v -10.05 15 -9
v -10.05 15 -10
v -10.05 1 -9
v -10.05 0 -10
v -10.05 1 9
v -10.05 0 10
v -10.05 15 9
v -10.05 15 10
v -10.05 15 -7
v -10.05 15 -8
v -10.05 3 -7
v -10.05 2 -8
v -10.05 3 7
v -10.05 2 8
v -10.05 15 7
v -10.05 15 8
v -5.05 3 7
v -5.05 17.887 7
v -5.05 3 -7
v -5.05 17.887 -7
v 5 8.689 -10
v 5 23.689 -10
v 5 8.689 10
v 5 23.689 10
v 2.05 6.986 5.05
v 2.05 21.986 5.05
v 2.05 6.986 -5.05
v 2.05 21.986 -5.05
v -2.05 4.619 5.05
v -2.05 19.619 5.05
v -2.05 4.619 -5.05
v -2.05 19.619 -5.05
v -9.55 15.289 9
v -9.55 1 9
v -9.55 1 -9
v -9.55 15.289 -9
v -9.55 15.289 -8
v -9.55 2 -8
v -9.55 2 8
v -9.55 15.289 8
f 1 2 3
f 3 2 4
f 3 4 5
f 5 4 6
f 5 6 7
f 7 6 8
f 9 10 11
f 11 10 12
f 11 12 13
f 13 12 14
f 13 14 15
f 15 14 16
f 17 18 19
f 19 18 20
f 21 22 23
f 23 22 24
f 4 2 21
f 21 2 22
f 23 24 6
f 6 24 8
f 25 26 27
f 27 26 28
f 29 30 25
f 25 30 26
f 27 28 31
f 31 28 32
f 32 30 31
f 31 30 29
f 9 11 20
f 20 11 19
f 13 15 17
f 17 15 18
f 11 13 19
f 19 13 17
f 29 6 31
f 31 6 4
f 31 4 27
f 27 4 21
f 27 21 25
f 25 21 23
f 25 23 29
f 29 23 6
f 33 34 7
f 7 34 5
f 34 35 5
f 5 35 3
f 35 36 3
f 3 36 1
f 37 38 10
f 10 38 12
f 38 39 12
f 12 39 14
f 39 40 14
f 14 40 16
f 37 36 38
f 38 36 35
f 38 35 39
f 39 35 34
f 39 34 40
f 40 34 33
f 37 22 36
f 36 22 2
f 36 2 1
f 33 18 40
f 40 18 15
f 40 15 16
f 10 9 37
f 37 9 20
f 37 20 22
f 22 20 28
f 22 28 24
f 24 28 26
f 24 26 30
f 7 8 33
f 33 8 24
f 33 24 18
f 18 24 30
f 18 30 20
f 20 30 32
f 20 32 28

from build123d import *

# Parameters (mm, degrees)
SKETCH2_W             = 10
SKETCH2_H             = 20
BOSS_EXTRUDE1_DEPTH   = 15
SKETCH3_W             = 4.1
SKETCH3_H             = 10.1
CUT_EXTRUDE1_DEPTH    = 19.708286934
SKETCH4_W             = 2.95
SKETCH4_H             = 4.95
CUT_EXTRUDE2_DEPTH    = 15
SKETCH6_W             = 20
SKETCH6_H             = 15
BOSS_EXTRUDE2_DEPTH   = 3
BOSS_EXTRUDE3_DEPTH   = 5
CUT_EXTRUDE3_DEPTH    = 27.944433562
CUT_EXTRUDE4_DEPTH    = 0.5
BOSS_EXTRUDE6_START   = -10
BOSS_EXTRUDE6_DEPTH   = 20
BOSS_EXTRUDE6_2_DEPTH = 4.95
BOSS_EXTRUDE6_START_2 = 5.05
BOSS_EXTRUDE6_3_DEPTH = 4.95
BOSS_EXTRUDE6_4_DEPTH = 3
BOSS_EXTRUDE6_START_3 = 7
BOSS_EXTRUDE6_5_DEPTH = 3
BOSS_EXTRUDE6_6_DEPTH = 1
BOSS_EXTRUDE6_START_4 = -8
BOSS_EXTRUDE6_7_DEPTH = 1
BOSS_EXTRUDE6_8_DEPTH = 1
BOSS_EXTRUDE6_START_5 = 9
BOSS_EXTRUDE6_9_DEPTH = 1


# Read off the part's stored shape, not the designer's step: Boss-Extrude6
with BuildPart() as part:
    # Sketch2 → Boss-Extrude1 (new body)
    with BuildSketch(Plane(origin=(0, 0, 0), x_dir=(1, 0, 0), z_dir=(0, 1, 0))):
        Rectangle(SKETCH2_W, SKETCH2_H)
    extrude(amount=BOSS_EXTRUDE1_DEPTH)

    # Sketch3 → Cut-Extrude1 (cut, through all)
    with BuildSketch(Plane(origin=(0, 15, 0), x_dir=(1, 0, 0), z_dir=(0, 1, 0))):
        Rectangle(SKETCH3_W, SKETCH3_H)
    extrude(amount=-CUT_EXTRUDE1_DEPTH, mode=Mode.SUBTRACT)

    # Sketch4 → Cut-Extrude2 (cut)
    with BuildSketch(Plane(origin=(0, 15, 0), x_dir=(1, 0, 0), z_dir=(0, 1, 0))):
        Polygon((-2.05, 10), (-5, 10), (-5, -5.05), (-2.05, -5.05), (-2.05, 5.05), align=None)
        with Locations((-3.525, -7.525)):
            Rectangle(SKETCH4_W, SKETCH4_H)
    extrude(amount=-CUT_EXTRUDE2_DEPTH, mode=Mode.SUBTRACT)

    # Sketch6 → Boss-Extrude2 (add)
    with BuildSketch(Plane.ZY.offset(2.05)):
        with Locations((0, 7.5)):
            Rectangle(SKETCH6_W, SKETCH6_H)
    extrude(amount=BOSS_EXTRUDE2_DEPTH)

    # Sketch8 → Boss-Extrude3 (add)
    with BuildSketch(Plane.ZY.offset(5.05)):
        Polygon((-7, 15), (-10, 15), (-10, 0), (10, 0), (10, 15), (7, 15), (7, 3), (-7, 3), align=None)
    extrude(amount=BOSS_EXTRUDE3_DEPTH)

    # Sketch10 → Cut-Extrude3 (cut, through all)
    with BuildSketch(Plane.XY.offset(10)):
        Polygon((-10.05, 0), (5, 8.689121551), (5, 0), align=None)
    extrude(amount=-CUT_EXTRUDE3_DEPTH, mode=Mode.SUBTRACT)

    # Sketch11 → Cut-Extrude4 (cut)
    with BuildSketch(Plane.ZY.offset(10.05)):
        Polygon((-8, 2), (-8, 15), (-9, 15), (-9, 1), (0, 1), (9, 1), (9, 15), (8, 15), (8, 2), (0, 2), align=None)
    extrude(amount=-CUT_EXTRUDE4_DEPTH, mode=Mode.SUBTRACT)

    # Boss-Extrude6 outline → Boss-Extrude6 (add)
    with BuildSketch(Plane.XY.offset(BOSS_EXTRUDE6_START)):
        Polygon((-5.05, 17.886751346), (-5.05, 15), (-2.05, 15), (-2.05, 19.618802154), align=None)
        Polygon((2.05, 21.985938257), (2.05, 15), (5, 15), (5, 23.689121551), align=None)
    extrude(amount=BOSS_EXTRUDE6_DEPTH)

    # Boss-Extrude6 2 outline → Boss-Extrude6 2 (add)
    with BuildSketch(Plane.XY.offset(BOSS_EXTRUDE6_START)):
        Polygon((-2.05, 19.618802154), (-2.05, 15), (2.05, 15), (2.05, 21.985938257), align=None)
    extrude(amount=BOSS_EXTRUDE6_2_DEPTH)

    # Boss-Extrude6 3 outline → Boss-Extrude6 3 (add)
    with BuildSketch(Plane.XY.offset(BOSS_EXTRUDE6_START_2)):
        Polygon((-2.05, 19.618802154), (-2.05, 15), (2.05, 15), (2.05, 21.985938257), align=None)
    extrude(amount=BOSS_EXTRUDE6_3_DEPTH)

    # Boss-Extrude6 4 outline → Boss-Extrude6 4 (add)
    with BuildSketch(Plane.XY.offset(BOSS_EXTRUDE6_START)):
        Polygon((-9.55, 15), (-5.05, 15), (-5.05, 17.886751346), (-9.55, 15.288675135), align=None)
    extrude(amount=BOSS_EXTRUDE6_4_DEPTH)

    # Boss-Extrude6 5 outline → Boss-Extrude6 5 (add)
    with BuildSketch(Plane.XY.offset(BOSS_EXTRUDE6_START_3)):
        Polygon((-9.55, 15), (-5.05, 15), (-5.05, 17.886751346), (-9.55, 15.288675135), align=None)
    extrude(amount=BOSS_EXTRUDE6_5_DEPTH)

    # Boss-Extrude6 6 outline → Boss-Extrude6 6 (add)
    with BuildSketch(Plane.XY.offset(BOSS_EXTRUDE6_START)):
        Polygon((-10.05, 15), (-9.55, 15), (-9.55, 15.288675135), align=None)
    extrude(amount=BOSS_EXTRUDE6_6_DEPTH)

    # Boss-Extrude6 7 outline → Boss-Extrude6 7 (add)
    with BuildSketch(Plane.XY.offset(BOSS_EXTRUDE6_START_4)):
        Polygon((-10.05, 15), (-9.55, 15), (-9.55, 15.288675135), align=None)
    extrude(amount=BOSS_EXTRUDE6_7_DEPTH)

    # Boss-Extrude6 8 outline → Boss-Extrude6 8 (add)
    with BuildSketch(Plane.XY.offset(BOSS_EXTRUDE6_START_3)):
        Polygon((-10.05, 15), (-9.55, 15), (-9.55, 15.288675135), align=None)
    extrude(amount=BOSS_EXTRUDE6_8_DEPTH)

    # Boss-Extrude6 9 outline → Boss-Extrude6 9 (add)
    with BuildSketch(Plane.XY.offset(BOSS_EXTRUDE6_START_5)):
        Polygon((-10.05, 15), (-9.55, 15), (-9.55, 15.288675135), align=None)
    extrude(amount=BOSS_EXTRUDE6_9_DEPTH)


solid = part.part
